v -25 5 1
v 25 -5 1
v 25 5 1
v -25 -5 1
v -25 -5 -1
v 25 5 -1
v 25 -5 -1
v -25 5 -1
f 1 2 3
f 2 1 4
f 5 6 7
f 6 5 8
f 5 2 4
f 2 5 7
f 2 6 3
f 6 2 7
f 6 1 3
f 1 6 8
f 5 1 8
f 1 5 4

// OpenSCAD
// Parameters for the rectangular plate
plate_length = 50;  // Length of the plate
plate_width = 10;   // Width of the plate
plate_thickness = 2; // Thickness of the plate

// Function to create a rectangular plate
module rectangular_plate() {
    cube([plate_length, plate_width, plate_thickness], center = true);
}

// Main model
rectangular_plate();
